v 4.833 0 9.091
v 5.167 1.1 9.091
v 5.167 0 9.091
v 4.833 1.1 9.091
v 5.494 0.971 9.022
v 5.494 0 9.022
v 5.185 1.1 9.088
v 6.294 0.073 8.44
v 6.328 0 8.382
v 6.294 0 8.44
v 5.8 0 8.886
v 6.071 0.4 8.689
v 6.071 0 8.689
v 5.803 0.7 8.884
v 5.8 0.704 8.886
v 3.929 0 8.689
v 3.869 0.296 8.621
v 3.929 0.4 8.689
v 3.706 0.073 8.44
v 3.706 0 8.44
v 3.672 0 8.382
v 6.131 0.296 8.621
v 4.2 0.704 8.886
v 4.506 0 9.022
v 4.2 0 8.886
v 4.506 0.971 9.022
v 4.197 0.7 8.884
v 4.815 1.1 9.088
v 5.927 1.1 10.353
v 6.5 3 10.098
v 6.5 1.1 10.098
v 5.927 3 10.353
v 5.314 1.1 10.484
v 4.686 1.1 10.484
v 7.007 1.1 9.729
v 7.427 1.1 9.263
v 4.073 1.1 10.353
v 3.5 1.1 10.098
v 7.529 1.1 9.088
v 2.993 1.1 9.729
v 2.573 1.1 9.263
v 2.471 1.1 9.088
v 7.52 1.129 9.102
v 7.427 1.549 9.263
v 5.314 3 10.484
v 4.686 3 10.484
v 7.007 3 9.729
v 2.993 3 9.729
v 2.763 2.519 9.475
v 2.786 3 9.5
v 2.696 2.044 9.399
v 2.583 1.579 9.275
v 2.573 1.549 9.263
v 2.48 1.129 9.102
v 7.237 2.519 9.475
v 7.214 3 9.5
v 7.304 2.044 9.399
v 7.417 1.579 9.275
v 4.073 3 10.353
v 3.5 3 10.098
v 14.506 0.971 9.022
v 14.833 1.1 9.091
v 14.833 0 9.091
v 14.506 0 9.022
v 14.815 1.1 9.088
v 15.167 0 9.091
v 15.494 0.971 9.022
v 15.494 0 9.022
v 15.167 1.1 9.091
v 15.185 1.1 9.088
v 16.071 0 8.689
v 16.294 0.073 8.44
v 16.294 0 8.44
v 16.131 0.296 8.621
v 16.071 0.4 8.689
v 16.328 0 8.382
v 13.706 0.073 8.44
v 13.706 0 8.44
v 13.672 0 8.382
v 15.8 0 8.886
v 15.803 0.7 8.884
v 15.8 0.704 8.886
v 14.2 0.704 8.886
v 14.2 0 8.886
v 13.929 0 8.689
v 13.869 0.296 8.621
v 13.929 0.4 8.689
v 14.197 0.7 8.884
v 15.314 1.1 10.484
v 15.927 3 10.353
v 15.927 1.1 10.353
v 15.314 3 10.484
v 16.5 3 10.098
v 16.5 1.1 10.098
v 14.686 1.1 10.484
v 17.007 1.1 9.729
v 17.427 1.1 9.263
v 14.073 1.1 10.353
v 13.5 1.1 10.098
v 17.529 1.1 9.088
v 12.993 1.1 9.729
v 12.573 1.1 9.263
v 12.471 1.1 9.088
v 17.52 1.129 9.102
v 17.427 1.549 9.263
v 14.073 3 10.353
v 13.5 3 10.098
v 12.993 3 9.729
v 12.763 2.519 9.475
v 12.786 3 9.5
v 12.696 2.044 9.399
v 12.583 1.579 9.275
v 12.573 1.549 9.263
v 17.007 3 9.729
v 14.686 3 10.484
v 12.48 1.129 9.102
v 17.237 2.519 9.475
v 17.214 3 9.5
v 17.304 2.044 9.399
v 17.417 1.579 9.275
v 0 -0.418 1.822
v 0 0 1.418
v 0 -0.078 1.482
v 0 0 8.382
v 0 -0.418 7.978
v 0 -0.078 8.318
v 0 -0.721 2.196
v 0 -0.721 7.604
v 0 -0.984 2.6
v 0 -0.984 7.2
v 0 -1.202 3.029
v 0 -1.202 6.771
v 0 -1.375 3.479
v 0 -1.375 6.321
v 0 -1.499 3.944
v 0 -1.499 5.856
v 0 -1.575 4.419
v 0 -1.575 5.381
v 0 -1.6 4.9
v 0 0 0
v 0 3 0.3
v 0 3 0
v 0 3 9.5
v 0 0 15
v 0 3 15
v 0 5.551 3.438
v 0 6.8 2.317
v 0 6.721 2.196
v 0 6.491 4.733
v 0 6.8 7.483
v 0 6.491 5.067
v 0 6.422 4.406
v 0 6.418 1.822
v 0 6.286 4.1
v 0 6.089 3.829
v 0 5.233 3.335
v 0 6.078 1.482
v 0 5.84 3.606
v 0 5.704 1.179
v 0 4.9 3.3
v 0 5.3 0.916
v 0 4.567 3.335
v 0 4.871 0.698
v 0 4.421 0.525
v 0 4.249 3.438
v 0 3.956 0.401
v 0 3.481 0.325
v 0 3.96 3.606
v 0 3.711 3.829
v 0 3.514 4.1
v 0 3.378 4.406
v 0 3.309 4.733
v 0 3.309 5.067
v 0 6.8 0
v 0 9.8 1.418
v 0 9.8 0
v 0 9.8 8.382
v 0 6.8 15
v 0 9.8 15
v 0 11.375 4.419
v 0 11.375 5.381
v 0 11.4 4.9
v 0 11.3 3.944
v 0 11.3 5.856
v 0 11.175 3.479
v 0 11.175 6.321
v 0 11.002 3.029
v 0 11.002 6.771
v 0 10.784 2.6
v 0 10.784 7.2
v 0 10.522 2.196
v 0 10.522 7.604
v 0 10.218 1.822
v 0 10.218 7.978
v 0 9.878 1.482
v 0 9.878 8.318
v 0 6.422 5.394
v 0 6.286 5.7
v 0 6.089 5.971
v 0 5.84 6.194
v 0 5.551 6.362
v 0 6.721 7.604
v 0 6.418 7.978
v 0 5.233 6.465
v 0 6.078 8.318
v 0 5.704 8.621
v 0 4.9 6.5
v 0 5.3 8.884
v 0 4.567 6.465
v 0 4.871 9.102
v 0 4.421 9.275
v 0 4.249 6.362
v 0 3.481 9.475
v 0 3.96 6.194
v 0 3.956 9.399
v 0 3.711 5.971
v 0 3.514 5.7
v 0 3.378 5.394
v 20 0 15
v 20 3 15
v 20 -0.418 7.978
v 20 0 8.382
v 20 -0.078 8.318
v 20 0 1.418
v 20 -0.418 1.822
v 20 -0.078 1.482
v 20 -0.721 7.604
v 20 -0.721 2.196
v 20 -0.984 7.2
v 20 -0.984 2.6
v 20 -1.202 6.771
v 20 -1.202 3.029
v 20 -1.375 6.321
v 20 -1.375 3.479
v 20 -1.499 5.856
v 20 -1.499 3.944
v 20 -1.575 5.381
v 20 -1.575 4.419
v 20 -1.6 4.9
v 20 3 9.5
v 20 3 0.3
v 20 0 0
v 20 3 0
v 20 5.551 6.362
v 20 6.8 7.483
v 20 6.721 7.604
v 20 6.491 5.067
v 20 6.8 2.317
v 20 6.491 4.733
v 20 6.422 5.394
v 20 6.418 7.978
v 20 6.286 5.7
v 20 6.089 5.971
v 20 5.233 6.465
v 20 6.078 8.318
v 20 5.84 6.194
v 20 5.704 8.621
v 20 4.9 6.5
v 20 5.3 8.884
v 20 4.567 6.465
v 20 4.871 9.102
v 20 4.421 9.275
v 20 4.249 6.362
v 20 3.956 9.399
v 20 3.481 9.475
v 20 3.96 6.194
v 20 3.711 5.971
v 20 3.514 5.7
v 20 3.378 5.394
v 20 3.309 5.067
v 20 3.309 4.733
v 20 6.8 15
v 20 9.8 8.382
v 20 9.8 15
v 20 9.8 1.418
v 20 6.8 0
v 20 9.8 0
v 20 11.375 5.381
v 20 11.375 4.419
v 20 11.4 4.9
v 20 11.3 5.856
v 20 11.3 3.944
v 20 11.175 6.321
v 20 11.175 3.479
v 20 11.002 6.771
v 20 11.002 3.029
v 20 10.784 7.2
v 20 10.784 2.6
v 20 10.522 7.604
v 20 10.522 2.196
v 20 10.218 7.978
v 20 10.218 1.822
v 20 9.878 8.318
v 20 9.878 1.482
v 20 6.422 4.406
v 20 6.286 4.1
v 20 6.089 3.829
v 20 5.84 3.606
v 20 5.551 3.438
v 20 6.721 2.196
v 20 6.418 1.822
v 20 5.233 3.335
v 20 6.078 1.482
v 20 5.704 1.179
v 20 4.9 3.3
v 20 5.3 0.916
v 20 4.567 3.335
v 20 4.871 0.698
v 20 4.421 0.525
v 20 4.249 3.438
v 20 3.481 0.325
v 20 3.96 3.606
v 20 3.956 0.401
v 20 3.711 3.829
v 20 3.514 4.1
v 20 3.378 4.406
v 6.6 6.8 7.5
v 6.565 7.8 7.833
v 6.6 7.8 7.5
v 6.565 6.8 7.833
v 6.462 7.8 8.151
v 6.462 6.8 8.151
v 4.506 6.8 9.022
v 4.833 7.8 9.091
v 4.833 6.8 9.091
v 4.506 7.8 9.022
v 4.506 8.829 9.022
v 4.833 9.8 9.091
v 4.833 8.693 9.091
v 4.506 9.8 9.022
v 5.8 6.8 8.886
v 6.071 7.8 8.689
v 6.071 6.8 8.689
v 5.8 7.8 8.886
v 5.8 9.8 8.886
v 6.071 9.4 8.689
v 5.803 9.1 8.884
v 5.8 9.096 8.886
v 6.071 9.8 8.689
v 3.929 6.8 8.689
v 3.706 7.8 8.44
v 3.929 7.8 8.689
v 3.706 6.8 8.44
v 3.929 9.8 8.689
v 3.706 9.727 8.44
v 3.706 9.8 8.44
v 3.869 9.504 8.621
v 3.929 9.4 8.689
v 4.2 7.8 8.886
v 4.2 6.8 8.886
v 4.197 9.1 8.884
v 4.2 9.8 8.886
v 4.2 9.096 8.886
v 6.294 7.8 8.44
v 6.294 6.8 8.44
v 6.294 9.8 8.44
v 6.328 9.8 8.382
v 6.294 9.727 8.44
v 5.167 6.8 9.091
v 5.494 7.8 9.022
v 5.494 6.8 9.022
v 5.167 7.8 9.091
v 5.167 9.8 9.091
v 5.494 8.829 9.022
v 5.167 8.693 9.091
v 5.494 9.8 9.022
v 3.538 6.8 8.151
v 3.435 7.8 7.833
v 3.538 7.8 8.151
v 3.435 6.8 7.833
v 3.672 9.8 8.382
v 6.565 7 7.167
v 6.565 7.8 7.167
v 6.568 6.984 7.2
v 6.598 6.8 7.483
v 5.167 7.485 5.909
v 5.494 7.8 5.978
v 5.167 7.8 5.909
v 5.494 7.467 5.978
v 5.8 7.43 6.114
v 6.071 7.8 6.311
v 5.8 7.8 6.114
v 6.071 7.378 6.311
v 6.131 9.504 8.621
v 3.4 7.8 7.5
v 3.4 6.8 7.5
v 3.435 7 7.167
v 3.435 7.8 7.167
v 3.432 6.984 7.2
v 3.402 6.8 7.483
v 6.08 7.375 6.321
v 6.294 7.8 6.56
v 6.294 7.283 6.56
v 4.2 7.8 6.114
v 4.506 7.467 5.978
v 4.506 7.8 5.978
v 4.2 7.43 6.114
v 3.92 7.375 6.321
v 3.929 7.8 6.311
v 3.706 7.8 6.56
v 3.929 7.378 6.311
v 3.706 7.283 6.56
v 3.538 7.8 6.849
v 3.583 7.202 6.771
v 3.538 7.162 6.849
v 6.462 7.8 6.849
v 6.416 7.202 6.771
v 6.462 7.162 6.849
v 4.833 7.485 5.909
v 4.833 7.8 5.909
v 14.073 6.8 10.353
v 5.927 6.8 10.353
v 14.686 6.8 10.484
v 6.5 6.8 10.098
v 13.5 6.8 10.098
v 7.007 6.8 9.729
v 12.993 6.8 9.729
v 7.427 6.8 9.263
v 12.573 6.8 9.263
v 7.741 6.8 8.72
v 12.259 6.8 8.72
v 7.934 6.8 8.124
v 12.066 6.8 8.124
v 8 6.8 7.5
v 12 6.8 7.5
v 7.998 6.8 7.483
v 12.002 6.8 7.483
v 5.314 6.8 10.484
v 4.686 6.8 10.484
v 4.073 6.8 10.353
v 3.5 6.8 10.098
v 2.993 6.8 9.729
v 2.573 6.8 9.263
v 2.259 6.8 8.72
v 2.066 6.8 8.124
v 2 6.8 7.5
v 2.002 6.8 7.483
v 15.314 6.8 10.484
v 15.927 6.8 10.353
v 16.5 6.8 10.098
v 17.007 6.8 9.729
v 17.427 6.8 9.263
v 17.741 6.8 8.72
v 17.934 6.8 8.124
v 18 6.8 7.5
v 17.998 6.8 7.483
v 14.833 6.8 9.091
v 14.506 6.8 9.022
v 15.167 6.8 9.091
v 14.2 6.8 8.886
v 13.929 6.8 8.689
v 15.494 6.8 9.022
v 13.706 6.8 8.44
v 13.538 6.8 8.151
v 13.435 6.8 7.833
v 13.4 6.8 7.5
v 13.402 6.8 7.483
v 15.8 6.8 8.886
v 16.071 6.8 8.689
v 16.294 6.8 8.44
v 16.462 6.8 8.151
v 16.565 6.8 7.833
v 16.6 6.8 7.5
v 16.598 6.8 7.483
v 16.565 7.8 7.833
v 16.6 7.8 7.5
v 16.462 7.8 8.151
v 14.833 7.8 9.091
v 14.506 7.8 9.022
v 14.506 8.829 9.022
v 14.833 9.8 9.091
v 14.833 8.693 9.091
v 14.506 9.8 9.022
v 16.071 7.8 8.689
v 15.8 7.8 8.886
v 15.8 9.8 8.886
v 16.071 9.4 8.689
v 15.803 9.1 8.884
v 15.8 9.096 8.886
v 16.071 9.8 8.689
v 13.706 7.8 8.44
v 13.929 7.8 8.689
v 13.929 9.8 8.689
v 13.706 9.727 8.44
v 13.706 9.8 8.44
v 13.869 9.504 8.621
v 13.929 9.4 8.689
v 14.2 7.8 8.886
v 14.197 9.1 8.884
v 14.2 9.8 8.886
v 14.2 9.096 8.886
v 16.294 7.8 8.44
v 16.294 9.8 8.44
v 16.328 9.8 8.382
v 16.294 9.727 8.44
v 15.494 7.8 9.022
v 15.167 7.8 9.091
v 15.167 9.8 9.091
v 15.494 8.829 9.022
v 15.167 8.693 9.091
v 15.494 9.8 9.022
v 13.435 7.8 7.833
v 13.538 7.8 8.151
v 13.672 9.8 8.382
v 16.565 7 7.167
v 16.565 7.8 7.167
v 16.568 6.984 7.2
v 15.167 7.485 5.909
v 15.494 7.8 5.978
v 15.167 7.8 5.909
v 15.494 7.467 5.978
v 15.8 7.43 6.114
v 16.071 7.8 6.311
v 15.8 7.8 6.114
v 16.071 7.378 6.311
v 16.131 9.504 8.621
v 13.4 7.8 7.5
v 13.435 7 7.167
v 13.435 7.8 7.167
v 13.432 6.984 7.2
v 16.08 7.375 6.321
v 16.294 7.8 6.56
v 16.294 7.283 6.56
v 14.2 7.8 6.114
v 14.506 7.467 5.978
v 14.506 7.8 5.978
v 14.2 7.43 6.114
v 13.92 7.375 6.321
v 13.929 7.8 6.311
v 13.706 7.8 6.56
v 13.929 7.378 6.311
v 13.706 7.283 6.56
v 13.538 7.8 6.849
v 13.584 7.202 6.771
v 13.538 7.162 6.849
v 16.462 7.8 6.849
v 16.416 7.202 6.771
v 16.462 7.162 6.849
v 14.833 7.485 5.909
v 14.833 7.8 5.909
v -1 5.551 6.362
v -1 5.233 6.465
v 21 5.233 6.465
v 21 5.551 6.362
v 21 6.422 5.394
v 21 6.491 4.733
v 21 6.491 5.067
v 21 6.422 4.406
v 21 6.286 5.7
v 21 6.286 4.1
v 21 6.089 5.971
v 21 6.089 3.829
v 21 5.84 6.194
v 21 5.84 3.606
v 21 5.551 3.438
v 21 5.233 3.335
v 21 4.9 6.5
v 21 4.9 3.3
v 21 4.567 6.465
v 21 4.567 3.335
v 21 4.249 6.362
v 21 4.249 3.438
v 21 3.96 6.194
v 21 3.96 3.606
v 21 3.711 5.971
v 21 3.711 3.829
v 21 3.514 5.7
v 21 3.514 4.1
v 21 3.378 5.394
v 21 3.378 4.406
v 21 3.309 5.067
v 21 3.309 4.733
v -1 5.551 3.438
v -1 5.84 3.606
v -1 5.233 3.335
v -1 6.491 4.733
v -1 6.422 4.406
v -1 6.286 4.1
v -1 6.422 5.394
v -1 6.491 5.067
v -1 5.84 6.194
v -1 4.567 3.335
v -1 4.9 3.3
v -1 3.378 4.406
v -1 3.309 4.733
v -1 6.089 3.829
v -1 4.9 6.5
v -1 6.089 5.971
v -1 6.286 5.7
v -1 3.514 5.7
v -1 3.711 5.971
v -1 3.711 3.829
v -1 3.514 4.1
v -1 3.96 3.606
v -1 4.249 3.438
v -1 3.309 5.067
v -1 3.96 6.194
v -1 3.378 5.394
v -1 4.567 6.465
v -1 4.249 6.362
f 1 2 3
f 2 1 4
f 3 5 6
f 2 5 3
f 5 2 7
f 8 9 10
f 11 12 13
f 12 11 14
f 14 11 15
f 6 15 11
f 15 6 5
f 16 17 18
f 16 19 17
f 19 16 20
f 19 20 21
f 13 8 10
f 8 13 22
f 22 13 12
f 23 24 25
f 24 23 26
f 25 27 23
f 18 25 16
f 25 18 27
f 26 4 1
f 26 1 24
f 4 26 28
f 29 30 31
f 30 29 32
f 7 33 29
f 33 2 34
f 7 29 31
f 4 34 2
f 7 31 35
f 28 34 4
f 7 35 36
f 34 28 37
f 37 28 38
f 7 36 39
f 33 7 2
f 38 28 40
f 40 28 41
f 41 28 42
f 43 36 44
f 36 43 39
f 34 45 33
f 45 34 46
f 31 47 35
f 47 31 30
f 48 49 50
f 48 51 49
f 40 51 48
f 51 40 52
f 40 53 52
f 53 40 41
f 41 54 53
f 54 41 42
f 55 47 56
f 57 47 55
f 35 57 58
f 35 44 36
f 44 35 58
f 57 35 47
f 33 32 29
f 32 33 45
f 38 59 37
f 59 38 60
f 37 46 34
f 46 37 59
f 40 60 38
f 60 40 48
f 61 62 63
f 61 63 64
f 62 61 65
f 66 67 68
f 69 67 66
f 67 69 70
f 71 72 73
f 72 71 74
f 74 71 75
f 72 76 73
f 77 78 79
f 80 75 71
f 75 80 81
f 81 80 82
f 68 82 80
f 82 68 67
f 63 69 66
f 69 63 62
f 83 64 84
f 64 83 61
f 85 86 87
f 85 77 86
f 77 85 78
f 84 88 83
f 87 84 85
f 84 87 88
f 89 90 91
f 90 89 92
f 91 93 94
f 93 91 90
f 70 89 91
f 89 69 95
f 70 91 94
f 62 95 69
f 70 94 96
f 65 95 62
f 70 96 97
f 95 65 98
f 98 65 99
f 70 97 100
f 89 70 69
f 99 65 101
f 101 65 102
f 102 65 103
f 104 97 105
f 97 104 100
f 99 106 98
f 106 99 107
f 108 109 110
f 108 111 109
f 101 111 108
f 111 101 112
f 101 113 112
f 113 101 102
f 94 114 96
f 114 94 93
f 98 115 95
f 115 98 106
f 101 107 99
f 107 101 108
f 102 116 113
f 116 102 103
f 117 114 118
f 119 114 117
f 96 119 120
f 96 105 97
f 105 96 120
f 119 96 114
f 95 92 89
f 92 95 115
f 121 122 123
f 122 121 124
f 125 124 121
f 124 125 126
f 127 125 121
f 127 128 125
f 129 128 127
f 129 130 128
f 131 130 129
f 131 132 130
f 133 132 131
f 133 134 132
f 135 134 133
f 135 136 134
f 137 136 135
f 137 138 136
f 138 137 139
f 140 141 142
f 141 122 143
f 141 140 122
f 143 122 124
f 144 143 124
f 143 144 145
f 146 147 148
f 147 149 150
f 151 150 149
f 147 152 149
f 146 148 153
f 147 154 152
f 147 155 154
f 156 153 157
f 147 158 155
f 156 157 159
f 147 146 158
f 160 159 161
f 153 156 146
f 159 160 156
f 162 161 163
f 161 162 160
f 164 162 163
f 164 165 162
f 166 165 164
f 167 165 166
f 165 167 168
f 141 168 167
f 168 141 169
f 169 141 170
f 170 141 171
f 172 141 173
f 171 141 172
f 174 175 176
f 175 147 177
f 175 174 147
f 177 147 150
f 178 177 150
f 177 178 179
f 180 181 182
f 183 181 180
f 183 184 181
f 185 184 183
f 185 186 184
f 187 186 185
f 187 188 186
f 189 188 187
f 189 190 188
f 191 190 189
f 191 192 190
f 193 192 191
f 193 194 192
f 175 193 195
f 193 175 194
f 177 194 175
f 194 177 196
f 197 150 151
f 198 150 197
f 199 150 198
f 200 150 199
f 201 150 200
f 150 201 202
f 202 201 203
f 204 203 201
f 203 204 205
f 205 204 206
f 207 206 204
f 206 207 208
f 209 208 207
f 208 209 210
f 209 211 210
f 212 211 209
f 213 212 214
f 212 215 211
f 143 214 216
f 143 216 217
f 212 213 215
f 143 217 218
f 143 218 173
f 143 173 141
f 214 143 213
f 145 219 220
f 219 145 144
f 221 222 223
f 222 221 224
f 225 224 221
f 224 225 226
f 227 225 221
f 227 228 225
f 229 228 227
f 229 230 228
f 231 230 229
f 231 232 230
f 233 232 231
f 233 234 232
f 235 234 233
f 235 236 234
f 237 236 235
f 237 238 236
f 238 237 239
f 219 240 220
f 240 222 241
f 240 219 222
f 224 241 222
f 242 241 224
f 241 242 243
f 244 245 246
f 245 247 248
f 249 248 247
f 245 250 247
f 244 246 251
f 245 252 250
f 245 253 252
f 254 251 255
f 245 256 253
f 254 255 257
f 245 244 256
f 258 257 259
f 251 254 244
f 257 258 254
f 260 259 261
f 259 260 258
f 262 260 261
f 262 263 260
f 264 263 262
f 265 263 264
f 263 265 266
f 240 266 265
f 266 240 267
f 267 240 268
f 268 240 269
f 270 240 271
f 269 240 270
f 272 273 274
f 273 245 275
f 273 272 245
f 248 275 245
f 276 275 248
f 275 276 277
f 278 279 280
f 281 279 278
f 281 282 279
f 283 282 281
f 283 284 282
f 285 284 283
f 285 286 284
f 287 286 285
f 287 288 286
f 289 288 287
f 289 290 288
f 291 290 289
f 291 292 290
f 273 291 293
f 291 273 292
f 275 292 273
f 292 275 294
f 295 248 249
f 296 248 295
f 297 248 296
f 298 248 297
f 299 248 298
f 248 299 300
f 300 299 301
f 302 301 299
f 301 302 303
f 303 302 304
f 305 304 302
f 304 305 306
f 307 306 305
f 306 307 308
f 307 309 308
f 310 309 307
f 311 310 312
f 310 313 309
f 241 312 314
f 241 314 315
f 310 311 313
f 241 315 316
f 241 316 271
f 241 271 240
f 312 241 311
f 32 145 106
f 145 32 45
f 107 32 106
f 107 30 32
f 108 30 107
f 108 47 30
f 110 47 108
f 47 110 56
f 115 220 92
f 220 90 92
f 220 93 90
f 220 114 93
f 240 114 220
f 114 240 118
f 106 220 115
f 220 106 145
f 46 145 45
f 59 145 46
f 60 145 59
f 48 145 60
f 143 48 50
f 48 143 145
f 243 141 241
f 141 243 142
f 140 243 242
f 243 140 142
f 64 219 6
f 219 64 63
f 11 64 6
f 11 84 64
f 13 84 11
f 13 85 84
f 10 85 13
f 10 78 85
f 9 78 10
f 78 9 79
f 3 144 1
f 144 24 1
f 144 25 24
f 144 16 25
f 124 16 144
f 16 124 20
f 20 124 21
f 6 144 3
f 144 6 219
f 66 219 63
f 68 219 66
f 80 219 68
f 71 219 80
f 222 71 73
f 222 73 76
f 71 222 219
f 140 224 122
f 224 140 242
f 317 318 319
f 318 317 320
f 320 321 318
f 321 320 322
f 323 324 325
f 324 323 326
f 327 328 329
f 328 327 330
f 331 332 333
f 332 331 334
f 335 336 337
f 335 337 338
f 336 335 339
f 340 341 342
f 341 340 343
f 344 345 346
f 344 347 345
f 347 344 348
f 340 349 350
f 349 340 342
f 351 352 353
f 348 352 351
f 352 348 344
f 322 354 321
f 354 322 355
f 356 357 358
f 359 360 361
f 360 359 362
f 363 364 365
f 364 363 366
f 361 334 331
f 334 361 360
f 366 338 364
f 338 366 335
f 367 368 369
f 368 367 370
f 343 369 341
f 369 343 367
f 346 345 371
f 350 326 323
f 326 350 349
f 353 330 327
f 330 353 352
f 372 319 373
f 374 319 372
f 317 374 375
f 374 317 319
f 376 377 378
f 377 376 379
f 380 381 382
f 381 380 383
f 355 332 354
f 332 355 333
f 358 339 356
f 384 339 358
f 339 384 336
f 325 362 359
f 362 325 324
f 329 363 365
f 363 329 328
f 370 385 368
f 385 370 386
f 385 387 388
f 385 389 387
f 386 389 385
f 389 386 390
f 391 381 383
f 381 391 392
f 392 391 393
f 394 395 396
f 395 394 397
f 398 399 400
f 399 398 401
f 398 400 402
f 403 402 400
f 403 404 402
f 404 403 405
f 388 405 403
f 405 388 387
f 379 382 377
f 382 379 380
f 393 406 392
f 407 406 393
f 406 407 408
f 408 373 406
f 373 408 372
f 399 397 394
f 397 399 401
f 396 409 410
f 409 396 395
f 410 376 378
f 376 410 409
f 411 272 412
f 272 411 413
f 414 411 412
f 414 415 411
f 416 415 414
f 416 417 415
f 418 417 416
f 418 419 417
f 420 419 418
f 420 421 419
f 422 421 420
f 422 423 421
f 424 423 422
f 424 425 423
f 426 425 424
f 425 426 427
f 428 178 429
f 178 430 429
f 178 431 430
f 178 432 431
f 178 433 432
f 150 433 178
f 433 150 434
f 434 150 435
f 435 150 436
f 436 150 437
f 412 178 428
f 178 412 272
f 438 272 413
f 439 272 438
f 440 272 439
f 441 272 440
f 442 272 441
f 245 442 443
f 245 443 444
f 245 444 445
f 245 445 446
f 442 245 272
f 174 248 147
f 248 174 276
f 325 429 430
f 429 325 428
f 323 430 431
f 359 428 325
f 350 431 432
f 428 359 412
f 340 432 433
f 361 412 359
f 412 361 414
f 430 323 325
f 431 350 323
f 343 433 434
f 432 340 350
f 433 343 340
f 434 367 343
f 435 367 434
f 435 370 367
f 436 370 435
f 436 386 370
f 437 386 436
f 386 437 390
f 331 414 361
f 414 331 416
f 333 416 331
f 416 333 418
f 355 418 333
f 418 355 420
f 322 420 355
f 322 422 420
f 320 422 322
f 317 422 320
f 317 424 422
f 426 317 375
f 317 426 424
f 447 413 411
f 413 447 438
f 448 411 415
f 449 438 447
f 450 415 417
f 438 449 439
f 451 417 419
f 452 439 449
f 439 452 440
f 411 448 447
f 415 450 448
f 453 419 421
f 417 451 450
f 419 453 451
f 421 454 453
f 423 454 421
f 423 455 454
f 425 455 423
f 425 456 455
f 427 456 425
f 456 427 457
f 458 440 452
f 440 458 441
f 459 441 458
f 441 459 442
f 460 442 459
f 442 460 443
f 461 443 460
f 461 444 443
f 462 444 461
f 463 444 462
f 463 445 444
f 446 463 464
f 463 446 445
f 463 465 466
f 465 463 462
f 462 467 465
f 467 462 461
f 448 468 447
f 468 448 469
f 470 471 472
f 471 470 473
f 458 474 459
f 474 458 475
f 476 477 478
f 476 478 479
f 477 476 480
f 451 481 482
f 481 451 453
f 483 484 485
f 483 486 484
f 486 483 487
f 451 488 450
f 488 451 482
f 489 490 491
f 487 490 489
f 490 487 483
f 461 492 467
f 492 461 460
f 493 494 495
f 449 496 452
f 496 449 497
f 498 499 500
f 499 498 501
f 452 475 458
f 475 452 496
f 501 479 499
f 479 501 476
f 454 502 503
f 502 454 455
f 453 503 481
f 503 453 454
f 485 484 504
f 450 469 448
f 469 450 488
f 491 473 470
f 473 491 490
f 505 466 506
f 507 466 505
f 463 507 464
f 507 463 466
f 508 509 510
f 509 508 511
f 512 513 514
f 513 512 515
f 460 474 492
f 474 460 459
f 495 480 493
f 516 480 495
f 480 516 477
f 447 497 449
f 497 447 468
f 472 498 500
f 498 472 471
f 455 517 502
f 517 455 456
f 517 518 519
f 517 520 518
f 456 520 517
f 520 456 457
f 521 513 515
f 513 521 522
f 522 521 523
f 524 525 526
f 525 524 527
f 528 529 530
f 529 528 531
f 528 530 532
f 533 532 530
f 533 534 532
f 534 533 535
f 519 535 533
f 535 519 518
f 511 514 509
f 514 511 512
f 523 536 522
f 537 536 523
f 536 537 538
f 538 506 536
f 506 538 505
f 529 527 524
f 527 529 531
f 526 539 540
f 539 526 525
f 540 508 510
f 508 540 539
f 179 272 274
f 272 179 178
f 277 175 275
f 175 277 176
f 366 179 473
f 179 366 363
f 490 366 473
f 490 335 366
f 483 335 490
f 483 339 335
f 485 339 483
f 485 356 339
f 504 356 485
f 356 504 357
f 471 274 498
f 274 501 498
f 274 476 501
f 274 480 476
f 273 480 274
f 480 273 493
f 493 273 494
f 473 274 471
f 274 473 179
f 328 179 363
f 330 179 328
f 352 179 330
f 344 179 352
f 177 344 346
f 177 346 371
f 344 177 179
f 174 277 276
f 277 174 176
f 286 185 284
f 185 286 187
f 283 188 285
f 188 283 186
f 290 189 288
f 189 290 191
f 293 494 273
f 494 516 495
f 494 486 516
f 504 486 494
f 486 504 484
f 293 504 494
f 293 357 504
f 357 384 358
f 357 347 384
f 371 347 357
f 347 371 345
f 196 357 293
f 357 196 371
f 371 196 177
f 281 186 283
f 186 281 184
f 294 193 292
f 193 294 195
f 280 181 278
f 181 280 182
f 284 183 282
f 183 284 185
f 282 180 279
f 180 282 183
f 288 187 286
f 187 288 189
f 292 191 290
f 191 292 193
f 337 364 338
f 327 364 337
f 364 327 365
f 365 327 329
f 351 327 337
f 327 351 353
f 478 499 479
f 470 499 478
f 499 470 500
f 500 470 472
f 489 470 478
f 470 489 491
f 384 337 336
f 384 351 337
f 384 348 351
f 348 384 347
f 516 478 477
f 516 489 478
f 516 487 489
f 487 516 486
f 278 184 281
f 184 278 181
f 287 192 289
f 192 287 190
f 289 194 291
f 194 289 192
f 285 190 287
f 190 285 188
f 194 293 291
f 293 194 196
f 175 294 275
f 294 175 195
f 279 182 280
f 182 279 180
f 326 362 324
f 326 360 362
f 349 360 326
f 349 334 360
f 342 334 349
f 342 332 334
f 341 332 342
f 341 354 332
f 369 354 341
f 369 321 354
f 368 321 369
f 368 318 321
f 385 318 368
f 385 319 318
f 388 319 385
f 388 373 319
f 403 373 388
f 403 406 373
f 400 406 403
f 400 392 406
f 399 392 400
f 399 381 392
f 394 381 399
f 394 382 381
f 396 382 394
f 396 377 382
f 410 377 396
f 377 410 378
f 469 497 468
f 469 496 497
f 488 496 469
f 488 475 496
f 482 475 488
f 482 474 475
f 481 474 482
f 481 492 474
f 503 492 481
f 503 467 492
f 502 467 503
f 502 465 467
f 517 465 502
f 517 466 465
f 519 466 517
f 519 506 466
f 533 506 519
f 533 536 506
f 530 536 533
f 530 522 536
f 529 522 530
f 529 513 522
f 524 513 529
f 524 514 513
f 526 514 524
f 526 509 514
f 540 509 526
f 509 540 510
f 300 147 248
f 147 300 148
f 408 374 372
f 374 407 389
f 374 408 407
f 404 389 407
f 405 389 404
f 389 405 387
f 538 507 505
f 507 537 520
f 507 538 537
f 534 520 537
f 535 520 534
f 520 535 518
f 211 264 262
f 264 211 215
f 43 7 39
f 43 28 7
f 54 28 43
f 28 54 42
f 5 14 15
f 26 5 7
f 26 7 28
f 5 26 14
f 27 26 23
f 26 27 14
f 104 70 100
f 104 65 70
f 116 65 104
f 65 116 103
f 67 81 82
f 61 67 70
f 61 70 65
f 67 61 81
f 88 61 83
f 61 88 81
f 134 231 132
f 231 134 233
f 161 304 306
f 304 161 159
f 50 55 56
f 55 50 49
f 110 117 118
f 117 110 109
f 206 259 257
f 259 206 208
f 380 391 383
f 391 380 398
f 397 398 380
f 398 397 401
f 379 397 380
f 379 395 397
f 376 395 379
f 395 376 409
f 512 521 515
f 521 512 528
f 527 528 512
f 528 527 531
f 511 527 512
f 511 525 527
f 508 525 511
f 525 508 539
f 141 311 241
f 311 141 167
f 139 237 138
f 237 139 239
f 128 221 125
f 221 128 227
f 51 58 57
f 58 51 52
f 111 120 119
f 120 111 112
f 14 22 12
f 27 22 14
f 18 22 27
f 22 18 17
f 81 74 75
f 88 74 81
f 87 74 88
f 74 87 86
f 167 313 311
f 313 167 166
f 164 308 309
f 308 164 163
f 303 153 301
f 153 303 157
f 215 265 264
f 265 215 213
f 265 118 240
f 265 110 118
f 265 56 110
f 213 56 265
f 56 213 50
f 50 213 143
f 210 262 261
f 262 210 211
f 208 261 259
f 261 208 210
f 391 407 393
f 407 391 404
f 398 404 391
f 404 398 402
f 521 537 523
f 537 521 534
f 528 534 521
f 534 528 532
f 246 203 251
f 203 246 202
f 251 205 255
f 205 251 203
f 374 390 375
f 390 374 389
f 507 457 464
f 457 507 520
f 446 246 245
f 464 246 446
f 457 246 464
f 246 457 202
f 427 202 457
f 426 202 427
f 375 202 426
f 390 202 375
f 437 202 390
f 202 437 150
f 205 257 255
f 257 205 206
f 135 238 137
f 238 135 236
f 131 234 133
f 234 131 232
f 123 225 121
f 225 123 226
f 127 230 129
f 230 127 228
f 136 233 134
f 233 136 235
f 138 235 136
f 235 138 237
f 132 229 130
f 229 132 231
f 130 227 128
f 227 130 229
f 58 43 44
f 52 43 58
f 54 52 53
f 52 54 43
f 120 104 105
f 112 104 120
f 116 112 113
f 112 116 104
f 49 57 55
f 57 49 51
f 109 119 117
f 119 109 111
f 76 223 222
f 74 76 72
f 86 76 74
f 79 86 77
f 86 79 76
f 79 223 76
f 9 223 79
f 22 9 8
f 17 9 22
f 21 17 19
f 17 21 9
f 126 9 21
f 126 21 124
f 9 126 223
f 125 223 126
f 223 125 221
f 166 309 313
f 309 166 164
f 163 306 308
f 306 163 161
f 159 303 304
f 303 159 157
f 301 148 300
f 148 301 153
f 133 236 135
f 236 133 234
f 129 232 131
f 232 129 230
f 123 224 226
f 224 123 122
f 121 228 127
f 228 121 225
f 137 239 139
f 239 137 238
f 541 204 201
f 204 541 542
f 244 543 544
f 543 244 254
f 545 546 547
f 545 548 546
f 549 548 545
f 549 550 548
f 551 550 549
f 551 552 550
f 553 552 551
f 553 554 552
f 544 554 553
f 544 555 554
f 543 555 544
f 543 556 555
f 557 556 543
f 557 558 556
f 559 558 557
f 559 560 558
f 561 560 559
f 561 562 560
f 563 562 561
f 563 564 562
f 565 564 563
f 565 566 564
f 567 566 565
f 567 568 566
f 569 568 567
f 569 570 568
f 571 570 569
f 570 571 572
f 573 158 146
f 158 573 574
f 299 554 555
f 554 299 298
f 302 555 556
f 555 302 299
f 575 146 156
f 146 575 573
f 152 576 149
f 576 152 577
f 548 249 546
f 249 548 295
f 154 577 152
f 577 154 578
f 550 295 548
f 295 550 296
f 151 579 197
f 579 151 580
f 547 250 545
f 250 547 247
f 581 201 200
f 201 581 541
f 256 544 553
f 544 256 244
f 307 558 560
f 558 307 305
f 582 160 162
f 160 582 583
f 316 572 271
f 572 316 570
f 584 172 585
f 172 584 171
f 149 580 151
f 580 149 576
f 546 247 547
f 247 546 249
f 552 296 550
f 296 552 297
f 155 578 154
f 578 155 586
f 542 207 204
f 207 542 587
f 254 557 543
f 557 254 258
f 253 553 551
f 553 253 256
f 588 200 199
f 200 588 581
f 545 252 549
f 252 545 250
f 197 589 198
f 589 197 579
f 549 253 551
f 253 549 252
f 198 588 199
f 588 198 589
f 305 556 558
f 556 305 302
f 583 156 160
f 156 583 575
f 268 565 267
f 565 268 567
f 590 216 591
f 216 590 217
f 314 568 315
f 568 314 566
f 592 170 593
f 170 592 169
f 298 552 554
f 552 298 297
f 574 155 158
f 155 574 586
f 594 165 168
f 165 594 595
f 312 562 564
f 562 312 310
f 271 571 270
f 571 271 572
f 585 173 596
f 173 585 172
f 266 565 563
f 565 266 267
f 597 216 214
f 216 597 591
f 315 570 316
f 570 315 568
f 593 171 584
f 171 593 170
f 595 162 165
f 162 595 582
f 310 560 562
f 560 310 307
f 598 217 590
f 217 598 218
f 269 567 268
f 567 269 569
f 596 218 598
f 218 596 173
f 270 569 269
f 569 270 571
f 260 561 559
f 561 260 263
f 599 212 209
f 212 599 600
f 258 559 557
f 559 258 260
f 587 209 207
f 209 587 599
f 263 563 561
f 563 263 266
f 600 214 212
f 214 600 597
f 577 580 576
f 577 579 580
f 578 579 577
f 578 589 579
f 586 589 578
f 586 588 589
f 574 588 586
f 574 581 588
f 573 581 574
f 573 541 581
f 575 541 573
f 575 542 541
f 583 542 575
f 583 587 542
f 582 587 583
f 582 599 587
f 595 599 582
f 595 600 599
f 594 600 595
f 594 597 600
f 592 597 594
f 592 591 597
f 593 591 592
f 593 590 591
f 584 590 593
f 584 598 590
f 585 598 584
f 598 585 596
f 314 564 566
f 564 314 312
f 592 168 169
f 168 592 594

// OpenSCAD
// Print-in-place hinge for 3mm thick walls
// Print orientation: hinge pin side down
// Use 3mm filament as pin after printing

wall_thickness = 3;
hinge_width = 20;
hinge_height = 15;
pin_diameter = 3.2; // For 3mm filament
clearance = 0.3;
screw_hole_diameter = 3.2; // For M3 screws
screw_head_diameter = 6;
screw_head_height = 2;

// Main hinge module
module hinge() {
    difference() {
        // Base plate for box side
        translate([0, 0, 0])
        cube([hinge_width, wall_thickness, hinge_height]);
        
        // Screw holes for box attachment
        for(x = [hinge_width/4, 3*hinge_width/4]) {
            translate([x, -1, hinge_height/2])
            rotate([-90, 0, 0])
            cylinder(d = screw_hole_diameter, h = wall_thickness + 2, $fn = 30);
            
            // Countersink for screw head
            translate([x, wall_thickness - screw_head_height + 0.1, hinge_height/2])
            rotate([-90, 0, 0])
            cylinder(d = screw_head_diameter, h = screw_head_height + 0.1, $fn = 30);
        }
    }
    
    // Box side hinge knuckle
    translate([0, wall_thickness, hinge_height/2 - pin_diameter/2 - 1])
    rotate([0, 90, 0])
    cylinder(d = pin_diameter + wall_thickness*2, h = hinge_width, $fn = 60);
    
    // Lid side hinge (with gap for print-in-place)
    translate([0, wall_thickness + pin_diameter + clearance*2, 0])
    difference() {
        // Base plate for lid side
        cube([hinge_width, wall_thickness, hinge_height]);
        
        // Screw holes for lid attachment
        for(x = [hinge_width/4, 3*hinge_width/4]) {
            translate([x, wall_thickness + 1, hinge_height/2])
            rotate([90, 0, 0])
            cylinder(d = screw_hole_diameter, h = wall_thickness + 2, $fn = 30);
            
            // Countersink for screw head
            translate([x, 0, hinge_height/2])
            rotate([90, 0, 0])
            cylinder(d = screw_head_diameter, h = screw_head_height + 0.1, $fn = 30);
        }
    }
    
    // Lid side hinge knuckle (split for print-in-place)
    translate([0, wall_thickness + pin_diameter + clearance*2, hinge_height/2 - pin_diameter/2 - 1])
    rotate([0, 90, 0])
    difference() {
        cylinder(d = pin_diameter + wall_thickness*2, h = hinge_width, $fn = 60);
        
        // Cut to make it print-in-place
        translate([-pin_diameter - wall_thickness, -pin_diameter - wall_thickness, -1])
        cube([(pin_diameter + wall_thickness)*2, pin_diameter + wall_thickness + 1, hinge_width + 2]);
    }
    
    // Pin hole through both knuckles
    translate([-1, wall_thickness + pin_diameter/2 + clearance, hinge_height/2 - pin_diameter/2 - 1])
    rotate([0, 90, 0])
    cylinder(d = pin_diameter, h = hinge_width + 2, $fn = 30);
}

// Render the hinge
hinge();

// Optional: Uncomment to see cross-section for debugging
/*
difference() {
    hinge();
    translate([-10, -10, -10])
    cube([40, 10, 40]);
}
*/
